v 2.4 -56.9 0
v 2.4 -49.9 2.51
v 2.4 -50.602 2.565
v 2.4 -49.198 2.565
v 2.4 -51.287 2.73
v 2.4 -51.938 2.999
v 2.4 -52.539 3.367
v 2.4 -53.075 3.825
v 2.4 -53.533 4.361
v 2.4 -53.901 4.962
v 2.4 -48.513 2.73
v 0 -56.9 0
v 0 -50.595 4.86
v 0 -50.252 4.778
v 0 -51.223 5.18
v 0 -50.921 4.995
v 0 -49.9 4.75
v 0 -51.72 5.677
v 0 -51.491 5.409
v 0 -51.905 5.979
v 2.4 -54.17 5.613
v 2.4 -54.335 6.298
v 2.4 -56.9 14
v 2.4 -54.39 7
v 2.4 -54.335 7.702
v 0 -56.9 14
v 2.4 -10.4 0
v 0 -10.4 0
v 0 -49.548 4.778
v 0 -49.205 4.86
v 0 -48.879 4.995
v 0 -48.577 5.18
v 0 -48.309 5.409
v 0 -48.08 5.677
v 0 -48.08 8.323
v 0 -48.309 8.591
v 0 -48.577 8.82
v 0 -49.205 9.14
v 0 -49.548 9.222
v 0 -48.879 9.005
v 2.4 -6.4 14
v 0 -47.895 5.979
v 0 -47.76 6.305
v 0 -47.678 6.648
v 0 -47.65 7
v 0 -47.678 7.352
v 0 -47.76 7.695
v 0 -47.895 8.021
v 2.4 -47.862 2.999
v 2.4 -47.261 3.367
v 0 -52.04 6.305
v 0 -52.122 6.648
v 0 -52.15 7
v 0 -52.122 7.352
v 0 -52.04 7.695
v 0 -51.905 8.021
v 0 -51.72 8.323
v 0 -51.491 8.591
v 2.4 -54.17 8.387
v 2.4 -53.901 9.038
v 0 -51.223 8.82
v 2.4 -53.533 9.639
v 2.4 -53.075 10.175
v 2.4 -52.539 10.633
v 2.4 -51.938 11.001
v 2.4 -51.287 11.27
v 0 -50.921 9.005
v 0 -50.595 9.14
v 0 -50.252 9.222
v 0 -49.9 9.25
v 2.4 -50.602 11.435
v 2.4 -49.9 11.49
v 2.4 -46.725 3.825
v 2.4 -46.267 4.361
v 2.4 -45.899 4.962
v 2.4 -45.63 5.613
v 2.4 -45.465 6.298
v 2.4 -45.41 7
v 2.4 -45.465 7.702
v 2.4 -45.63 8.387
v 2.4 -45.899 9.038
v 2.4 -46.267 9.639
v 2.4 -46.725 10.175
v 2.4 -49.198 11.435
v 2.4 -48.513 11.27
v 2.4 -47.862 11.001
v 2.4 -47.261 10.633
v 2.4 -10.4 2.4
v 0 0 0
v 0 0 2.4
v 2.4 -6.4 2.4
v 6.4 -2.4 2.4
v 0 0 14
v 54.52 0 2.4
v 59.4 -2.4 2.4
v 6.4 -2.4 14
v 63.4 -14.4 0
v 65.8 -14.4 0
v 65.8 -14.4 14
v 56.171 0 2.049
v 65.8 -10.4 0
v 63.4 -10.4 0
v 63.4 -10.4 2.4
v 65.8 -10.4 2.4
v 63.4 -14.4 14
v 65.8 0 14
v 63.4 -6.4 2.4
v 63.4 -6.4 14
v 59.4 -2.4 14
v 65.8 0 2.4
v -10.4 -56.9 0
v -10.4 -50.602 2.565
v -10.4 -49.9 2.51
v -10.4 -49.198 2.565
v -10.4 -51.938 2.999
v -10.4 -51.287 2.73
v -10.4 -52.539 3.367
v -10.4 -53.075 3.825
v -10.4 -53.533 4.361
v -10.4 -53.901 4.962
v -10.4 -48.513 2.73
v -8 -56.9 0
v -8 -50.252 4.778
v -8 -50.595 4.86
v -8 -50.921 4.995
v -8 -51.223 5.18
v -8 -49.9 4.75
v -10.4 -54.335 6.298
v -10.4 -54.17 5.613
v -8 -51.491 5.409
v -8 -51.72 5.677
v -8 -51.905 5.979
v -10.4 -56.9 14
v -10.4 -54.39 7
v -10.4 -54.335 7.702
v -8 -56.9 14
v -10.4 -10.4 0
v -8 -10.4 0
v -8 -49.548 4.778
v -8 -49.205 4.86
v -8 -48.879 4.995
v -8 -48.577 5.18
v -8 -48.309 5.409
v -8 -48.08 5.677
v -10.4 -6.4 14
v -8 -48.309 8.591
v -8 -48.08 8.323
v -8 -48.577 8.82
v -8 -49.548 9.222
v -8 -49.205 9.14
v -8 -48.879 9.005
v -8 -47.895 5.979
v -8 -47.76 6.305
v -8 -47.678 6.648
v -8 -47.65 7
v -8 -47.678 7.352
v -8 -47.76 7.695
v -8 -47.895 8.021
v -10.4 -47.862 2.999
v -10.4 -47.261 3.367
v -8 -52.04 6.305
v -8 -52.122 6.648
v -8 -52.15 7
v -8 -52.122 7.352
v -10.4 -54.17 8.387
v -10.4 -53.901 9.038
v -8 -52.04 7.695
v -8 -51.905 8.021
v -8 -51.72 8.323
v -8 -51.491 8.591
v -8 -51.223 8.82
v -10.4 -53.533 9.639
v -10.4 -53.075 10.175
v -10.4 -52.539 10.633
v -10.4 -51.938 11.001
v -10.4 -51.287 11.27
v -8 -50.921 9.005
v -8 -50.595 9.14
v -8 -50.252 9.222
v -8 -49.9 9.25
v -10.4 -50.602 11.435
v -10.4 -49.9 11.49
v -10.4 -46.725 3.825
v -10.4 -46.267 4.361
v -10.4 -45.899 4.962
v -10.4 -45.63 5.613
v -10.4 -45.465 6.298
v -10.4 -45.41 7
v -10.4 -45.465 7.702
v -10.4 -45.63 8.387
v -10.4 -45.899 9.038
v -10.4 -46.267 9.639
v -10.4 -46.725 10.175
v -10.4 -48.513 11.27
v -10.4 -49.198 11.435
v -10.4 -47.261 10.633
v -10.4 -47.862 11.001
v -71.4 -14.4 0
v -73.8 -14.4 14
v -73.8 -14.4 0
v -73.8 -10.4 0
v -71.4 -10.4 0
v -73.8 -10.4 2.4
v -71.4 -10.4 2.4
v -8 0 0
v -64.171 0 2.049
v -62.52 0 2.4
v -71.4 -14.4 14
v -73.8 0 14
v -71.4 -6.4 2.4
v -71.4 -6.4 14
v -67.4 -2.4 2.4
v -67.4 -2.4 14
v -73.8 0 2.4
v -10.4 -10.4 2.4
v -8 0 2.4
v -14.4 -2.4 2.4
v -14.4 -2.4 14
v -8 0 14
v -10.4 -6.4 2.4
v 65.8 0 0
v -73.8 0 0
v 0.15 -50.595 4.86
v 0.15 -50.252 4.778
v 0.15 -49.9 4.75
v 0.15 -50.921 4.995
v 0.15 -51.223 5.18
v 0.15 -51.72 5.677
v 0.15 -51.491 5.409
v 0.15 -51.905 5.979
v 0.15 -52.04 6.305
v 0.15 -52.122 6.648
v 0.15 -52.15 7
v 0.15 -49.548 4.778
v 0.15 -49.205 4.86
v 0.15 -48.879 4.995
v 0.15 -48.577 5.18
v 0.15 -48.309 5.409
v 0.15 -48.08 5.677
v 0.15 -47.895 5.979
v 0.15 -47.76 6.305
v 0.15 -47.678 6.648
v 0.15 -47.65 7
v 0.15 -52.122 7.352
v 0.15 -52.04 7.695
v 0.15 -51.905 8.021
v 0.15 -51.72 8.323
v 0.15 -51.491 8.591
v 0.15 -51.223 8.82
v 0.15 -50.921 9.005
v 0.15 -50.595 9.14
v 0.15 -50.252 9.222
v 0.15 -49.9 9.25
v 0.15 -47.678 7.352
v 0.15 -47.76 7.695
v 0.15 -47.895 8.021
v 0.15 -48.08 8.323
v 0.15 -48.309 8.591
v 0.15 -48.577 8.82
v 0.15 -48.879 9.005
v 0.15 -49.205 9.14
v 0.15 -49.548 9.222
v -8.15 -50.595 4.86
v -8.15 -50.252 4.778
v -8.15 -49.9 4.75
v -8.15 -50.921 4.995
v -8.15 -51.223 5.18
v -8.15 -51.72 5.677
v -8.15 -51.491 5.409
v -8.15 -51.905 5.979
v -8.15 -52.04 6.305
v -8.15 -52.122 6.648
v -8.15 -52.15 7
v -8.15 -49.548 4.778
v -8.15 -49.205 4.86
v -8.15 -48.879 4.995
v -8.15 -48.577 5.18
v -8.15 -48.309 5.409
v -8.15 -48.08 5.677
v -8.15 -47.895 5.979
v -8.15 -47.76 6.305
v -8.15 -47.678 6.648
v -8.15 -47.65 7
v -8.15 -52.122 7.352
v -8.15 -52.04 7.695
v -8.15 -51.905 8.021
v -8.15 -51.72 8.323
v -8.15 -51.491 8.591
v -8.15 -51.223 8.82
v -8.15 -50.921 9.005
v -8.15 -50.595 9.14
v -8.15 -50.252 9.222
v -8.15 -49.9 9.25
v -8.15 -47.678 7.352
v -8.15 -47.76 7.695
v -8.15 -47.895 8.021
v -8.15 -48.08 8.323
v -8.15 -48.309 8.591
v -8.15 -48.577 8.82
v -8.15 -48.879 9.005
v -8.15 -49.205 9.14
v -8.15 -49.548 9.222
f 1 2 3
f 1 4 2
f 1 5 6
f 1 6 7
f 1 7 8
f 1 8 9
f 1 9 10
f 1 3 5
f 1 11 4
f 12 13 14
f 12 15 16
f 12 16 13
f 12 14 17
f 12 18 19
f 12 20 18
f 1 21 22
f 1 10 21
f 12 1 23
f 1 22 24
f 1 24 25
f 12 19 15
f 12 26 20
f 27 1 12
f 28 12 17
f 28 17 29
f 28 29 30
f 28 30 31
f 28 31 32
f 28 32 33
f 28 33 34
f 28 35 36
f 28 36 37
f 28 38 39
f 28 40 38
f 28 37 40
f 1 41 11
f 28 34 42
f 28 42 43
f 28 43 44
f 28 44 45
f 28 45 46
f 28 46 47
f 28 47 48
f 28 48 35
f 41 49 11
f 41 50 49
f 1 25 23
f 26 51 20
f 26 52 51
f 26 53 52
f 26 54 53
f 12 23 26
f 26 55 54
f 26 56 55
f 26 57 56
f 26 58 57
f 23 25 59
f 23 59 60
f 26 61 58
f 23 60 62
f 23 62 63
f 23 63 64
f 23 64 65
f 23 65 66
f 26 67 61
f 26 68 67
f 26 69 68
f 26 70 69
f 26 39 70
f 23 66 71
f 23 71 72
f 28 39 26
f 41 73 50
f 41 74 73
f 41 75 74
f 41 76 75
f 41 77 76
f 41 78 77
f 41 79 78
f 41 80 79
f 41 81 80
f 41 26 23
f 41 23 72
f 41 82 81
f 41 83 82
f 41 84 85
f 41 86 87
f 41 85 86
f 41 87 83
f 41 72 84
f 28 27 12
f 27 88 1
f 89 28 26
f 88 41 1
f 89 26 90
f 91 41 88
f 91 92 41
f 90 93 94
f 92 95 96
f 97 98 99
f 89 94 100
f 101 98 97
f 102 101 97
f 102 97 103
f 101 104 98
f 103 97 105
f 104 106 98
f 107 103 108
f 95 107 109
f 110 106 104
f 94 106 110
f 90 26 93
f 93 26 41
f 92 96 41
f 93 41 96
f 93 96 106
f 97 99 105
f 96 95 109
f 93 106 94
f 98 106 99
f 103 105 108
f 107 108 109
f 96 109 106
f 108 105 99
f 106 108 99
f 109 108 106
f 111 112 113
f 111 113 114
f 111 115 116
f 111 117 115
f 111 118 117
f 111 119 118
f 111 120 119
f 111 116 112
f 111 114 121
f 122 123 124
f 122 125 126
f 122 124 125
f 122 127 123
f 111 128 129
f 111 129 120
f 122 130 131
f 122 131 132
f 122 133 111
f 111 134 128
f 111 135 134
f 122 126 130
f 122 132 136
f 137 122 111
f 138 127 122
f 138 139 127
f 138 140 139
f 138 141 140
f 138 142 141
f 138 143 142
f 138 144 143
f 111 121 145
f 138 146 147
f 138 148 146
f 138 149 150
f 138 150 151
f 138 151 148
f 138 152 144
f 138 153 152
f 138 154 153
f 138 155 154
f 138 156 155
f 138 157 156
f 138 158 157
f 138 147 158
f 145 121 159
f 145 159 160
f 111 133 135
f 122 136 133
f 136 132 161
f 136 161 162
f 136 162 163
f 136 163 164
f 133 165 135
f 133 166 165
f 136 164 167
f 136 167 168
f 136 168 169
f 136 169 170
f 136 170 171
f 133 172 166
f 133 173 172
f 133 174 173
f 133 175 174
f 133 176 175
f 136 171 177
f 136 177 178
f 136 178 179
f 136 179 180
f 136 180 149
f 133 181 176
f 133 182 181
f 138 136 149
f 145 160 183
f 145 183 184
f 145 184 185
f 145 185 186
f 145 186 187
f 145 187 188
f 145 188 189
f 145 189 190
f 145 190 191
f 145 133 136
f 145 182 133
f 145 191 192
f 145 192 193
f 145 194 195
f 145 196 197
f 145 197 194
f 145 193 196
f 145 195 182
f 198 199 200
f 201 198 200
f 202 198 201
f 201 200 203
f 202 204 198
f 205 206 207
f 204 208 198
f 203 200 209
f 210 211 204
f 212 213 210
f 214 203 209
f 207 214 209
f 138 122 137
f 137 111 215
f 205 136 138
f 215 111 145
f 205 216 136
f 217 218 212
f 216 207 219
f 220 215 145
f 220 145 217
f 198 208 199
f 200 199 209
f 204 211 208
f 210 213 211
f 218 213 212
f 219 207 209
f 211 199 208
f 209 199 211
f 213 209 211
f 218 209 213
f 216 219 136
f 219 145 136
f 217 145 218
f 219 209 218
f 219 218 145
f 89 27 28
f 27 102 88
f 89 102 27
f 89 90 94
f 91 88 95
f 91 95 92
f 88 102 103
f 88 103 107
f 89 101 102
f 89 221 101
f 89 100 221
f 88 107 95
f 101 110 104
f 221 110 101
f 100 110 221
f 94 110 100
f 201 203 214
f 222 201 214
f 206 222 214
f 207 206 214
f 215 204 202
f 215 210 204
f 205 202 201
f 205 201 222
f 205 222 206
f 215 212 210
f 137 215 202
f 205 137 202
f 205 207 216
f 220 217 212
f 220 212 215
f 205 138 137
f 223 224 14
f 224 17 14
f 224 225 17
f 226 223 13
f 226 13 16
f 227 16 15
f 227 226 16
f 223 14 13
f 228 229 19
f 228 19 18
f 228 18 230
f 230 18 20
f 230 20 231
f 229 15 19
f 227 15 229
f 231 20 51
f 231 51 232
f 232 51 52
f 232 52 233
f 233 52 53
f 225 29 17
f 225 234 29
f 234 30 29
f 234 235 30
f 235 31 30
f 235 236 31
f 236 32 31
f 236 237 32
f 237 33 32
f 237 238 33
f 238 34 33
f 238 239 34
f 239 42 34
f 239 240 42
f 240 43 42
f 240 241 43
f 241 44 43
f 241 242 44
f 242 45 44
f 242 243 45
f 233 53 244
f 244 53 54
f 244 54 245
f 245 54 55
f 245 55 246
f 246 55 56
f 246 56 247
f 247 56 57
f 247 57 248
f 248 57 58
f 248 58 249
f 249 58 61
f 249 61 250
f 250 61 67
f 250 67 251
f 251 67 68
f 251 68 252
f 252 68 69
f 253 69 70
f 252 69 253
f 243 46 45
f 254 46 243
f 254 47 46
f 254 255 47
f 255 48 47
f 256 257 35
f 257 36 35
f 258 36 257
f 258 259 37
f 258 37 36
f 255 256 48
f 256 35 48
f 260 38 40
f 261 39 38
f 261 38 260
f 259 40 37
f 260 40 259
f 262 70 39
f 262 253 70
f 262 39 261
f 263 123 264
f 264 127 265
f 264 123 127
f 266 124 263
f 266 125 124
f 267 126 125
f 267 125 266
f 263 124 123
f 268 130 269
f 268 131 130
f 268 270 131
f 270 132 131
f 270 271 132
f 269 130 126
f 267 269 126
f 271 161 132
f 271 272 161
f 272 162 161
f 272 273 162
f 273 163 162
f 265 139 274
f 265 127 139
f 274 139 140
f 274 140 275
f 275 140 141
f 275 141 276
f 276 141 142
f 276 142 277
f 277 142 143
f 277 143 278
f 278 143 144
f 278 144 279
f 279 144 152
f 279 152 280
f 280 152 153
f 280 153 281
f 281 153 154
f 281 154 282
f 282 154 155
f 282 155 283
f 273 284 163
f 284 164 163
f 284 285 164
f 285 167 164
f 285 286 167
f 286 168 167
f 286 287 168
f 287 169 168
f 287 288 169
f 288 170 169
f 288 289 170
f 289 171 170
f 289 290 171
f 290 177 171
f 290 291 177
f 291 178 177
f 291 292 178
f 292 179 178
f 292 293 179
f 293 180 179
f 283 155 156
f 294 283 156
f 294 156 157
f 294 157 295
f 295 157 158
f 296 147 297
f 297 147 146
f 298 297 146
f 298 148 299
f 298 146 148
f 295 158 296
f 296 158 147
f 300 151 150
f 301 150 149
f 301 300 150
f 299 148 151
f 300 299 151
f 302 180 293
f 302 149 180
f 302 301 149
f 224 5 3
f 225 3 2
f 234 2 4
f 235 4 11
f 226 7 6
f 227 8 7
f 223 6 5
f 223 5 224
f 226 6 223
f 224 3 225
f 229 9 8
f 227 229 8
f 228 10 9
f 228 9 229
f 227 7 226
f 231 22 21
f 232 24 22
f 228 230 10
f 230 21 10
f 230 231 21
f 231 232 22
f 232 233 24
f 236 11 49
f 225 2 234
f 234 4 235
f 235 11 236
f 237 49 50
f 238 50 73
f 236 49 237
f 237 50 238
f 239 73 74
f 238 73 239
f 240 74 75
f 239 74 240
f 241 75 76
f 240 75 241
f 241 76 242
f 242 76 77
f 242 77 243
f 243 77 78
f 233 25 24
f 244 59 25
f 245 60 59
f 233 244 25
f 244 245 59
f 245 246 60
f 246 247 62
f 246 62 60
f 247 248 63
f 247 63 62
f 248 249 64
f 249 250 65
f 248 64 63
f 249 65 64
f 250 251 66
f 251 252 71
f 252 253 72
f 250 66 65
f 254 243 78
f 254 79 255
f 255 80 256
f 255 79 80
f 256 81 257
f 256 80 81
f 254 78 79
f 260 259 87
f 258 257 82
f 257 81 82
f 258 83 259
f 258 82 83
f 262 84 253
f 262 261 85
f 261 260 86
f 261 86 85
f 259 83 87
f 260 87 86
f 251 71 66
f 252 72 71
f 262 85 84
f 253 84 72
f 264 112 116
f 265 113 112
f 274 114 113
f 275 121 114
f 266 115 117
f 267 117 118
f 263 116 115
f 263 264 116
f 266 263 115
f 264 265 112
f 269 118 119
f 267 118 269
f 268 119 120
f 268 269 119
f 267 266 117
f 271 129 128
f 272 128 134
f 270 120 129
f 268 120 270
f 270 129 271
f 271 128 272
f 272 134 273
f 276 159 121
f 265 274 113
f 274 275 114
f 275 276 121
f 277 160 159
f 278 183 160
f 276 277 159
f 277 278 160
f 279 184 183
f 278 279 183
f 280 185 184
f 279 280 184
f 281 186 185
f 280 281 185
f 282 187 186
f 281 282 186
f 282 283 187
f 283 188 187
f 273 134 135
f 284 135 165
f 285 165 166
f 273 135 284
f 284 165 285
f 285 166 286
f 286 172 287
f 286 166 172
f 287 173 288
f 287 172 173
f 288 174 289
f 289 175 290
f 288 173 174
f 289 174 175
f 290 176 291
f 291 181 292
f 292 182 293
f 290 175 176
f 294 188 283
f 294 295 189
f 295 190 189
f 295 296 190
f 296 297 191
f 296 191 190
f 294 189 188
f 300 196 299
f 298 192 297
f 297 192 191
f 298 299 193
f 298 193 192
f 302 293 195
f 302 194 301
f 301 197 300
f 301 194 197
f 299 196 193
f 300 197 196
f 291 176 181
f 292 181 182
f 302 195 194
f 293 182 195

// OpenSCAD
// IKEA KOPPLA Wandhalterung – Steckdosen zeigen nach oben
// Materialsparend: zwei schmale U-Klammern, je eine pro Ende der Leiste.
// Jede Klammer hat einen Endanschlag, damit die Leiste nicht seitlich rausrutscht,
// und eine Senkkopfschraube in der Rückwand.
//
// Voreingestellt für KOPPLA 5-fach mit 2 USB (CH, 903.002.35).
// IKEA gibt nur gerundete Werte an (Länge 0.3 m, Breite 6 cm, Höhe fehlt):
// Länge und Höhe nachmessen!

/* [Masse der Steckerleiste] */
strip_l = 300;   // Länge (ohne Kabel)
strip_w = 60;    // Breite (Wand -> vorne)
strip_h = 40;    // Höhe des Gehäuses (Boden -> Steckdosenfläche), geschätzt

/* [Klammer] */
clearance = 0.5;  // Spiel
t         = 2.4;  // Wandstärke
b         = 14;   // Breite einer Klammer (entlang der Leiste)
lip_h     = 12;   // Höhe der vorderen Lippe
stop_h    = 8;    // Höhe des Endanschlags (0 = kein Anschlag)
tab_h     = 14;   // Rückwand ragt so weit über die Leiste (für die Schraube)
gusset    = 4;    // Verstärkung in den Innenecken

/* [Schraube] */
screw_d      = 4.5;
screw_head_d = 9;

$fn = 40;

// ---------- abgeleitete Masse ----------
in_w   = strip_w + 2*clearance;
back_h = t + strip_h + clearance + tab_h;
screw_z = t + strip_h + clearance + tab_h/2;

// Abstand der Klammer-Aussenkanten an der Wand
echo(str("Aussenkanten-Abstand der Klammern: ", strip_l + 2*clearance + 2*t, " mm"));

module profile() {
    // Querschnitt in X (Wand -> vorne) / Z (hoch)
    union() {
        square([t, back_h]);                                   // Rückwand
        square([in_w + 2*t, t]);                               // Boden
        translate([in_w + t, 0]) square([t, t + lip_h]);       // Lippe
        polygon([[t, t], [t + gusset, t], [t, t + gusset]]);   // Ecke hinten
        polygon([[in_w + t, t], [in_w + t - gusset, t], [in_w + t, t + gusset]]); // Ecke vorne
    }
}

module bracket() {
    difference() {
        union() {
            // U-Profil, entlang Y extrudiert
            rotate([90, 0, 0]) mirror([0, 0, 1]) linear_extrude(b) profile();
            // Endanschlag an der Aussenseite (y = 0)
            if (stop_h > 0)
                cube([in_w + 2*t, t, t + stop_h]);
        }
        // Senkloch, Kopf auf der Innenseite
        translate([0, b/2, screw_z]) rotate([0, 90, 0]) {
            translate([0, 0, -1]) cylinder(d=screw_d, h=t + 2);
            translate([0, 0, t - (screw_head_d - screw_d)/2])
                cylinder(d1=screw_d, d2=screw_head_d, h=(screw_head_d - screw_d)/2 + 0.01);
        }
    }
}

print_orientation = true; // false = Ansicht wie montiert

if (print_orientation) {
    // Beide Klammern flach liegend (Endanschlag auf dem Bett), keine Stützen.
    // Die zweite ist gespiegelt: eine für links, eine für rechts.
    rotate([90, 0, 0]) bracket();
    translate([-8, 0, 0]) mirror([1, 0, 0]) rotate([90, 0, 0]) bracket();
} else {
    gap = strip_l + 2*clearance;
    translate([0, -t, 0]) bracket();
    translate([0, gap + t, 0]) mirror([0, 1, 0]) bracket();
    %translate([t + clearance, 0, t]) cube([strip_w, gap, strip_h]);  // Leiste (nur Vorschau)
}
